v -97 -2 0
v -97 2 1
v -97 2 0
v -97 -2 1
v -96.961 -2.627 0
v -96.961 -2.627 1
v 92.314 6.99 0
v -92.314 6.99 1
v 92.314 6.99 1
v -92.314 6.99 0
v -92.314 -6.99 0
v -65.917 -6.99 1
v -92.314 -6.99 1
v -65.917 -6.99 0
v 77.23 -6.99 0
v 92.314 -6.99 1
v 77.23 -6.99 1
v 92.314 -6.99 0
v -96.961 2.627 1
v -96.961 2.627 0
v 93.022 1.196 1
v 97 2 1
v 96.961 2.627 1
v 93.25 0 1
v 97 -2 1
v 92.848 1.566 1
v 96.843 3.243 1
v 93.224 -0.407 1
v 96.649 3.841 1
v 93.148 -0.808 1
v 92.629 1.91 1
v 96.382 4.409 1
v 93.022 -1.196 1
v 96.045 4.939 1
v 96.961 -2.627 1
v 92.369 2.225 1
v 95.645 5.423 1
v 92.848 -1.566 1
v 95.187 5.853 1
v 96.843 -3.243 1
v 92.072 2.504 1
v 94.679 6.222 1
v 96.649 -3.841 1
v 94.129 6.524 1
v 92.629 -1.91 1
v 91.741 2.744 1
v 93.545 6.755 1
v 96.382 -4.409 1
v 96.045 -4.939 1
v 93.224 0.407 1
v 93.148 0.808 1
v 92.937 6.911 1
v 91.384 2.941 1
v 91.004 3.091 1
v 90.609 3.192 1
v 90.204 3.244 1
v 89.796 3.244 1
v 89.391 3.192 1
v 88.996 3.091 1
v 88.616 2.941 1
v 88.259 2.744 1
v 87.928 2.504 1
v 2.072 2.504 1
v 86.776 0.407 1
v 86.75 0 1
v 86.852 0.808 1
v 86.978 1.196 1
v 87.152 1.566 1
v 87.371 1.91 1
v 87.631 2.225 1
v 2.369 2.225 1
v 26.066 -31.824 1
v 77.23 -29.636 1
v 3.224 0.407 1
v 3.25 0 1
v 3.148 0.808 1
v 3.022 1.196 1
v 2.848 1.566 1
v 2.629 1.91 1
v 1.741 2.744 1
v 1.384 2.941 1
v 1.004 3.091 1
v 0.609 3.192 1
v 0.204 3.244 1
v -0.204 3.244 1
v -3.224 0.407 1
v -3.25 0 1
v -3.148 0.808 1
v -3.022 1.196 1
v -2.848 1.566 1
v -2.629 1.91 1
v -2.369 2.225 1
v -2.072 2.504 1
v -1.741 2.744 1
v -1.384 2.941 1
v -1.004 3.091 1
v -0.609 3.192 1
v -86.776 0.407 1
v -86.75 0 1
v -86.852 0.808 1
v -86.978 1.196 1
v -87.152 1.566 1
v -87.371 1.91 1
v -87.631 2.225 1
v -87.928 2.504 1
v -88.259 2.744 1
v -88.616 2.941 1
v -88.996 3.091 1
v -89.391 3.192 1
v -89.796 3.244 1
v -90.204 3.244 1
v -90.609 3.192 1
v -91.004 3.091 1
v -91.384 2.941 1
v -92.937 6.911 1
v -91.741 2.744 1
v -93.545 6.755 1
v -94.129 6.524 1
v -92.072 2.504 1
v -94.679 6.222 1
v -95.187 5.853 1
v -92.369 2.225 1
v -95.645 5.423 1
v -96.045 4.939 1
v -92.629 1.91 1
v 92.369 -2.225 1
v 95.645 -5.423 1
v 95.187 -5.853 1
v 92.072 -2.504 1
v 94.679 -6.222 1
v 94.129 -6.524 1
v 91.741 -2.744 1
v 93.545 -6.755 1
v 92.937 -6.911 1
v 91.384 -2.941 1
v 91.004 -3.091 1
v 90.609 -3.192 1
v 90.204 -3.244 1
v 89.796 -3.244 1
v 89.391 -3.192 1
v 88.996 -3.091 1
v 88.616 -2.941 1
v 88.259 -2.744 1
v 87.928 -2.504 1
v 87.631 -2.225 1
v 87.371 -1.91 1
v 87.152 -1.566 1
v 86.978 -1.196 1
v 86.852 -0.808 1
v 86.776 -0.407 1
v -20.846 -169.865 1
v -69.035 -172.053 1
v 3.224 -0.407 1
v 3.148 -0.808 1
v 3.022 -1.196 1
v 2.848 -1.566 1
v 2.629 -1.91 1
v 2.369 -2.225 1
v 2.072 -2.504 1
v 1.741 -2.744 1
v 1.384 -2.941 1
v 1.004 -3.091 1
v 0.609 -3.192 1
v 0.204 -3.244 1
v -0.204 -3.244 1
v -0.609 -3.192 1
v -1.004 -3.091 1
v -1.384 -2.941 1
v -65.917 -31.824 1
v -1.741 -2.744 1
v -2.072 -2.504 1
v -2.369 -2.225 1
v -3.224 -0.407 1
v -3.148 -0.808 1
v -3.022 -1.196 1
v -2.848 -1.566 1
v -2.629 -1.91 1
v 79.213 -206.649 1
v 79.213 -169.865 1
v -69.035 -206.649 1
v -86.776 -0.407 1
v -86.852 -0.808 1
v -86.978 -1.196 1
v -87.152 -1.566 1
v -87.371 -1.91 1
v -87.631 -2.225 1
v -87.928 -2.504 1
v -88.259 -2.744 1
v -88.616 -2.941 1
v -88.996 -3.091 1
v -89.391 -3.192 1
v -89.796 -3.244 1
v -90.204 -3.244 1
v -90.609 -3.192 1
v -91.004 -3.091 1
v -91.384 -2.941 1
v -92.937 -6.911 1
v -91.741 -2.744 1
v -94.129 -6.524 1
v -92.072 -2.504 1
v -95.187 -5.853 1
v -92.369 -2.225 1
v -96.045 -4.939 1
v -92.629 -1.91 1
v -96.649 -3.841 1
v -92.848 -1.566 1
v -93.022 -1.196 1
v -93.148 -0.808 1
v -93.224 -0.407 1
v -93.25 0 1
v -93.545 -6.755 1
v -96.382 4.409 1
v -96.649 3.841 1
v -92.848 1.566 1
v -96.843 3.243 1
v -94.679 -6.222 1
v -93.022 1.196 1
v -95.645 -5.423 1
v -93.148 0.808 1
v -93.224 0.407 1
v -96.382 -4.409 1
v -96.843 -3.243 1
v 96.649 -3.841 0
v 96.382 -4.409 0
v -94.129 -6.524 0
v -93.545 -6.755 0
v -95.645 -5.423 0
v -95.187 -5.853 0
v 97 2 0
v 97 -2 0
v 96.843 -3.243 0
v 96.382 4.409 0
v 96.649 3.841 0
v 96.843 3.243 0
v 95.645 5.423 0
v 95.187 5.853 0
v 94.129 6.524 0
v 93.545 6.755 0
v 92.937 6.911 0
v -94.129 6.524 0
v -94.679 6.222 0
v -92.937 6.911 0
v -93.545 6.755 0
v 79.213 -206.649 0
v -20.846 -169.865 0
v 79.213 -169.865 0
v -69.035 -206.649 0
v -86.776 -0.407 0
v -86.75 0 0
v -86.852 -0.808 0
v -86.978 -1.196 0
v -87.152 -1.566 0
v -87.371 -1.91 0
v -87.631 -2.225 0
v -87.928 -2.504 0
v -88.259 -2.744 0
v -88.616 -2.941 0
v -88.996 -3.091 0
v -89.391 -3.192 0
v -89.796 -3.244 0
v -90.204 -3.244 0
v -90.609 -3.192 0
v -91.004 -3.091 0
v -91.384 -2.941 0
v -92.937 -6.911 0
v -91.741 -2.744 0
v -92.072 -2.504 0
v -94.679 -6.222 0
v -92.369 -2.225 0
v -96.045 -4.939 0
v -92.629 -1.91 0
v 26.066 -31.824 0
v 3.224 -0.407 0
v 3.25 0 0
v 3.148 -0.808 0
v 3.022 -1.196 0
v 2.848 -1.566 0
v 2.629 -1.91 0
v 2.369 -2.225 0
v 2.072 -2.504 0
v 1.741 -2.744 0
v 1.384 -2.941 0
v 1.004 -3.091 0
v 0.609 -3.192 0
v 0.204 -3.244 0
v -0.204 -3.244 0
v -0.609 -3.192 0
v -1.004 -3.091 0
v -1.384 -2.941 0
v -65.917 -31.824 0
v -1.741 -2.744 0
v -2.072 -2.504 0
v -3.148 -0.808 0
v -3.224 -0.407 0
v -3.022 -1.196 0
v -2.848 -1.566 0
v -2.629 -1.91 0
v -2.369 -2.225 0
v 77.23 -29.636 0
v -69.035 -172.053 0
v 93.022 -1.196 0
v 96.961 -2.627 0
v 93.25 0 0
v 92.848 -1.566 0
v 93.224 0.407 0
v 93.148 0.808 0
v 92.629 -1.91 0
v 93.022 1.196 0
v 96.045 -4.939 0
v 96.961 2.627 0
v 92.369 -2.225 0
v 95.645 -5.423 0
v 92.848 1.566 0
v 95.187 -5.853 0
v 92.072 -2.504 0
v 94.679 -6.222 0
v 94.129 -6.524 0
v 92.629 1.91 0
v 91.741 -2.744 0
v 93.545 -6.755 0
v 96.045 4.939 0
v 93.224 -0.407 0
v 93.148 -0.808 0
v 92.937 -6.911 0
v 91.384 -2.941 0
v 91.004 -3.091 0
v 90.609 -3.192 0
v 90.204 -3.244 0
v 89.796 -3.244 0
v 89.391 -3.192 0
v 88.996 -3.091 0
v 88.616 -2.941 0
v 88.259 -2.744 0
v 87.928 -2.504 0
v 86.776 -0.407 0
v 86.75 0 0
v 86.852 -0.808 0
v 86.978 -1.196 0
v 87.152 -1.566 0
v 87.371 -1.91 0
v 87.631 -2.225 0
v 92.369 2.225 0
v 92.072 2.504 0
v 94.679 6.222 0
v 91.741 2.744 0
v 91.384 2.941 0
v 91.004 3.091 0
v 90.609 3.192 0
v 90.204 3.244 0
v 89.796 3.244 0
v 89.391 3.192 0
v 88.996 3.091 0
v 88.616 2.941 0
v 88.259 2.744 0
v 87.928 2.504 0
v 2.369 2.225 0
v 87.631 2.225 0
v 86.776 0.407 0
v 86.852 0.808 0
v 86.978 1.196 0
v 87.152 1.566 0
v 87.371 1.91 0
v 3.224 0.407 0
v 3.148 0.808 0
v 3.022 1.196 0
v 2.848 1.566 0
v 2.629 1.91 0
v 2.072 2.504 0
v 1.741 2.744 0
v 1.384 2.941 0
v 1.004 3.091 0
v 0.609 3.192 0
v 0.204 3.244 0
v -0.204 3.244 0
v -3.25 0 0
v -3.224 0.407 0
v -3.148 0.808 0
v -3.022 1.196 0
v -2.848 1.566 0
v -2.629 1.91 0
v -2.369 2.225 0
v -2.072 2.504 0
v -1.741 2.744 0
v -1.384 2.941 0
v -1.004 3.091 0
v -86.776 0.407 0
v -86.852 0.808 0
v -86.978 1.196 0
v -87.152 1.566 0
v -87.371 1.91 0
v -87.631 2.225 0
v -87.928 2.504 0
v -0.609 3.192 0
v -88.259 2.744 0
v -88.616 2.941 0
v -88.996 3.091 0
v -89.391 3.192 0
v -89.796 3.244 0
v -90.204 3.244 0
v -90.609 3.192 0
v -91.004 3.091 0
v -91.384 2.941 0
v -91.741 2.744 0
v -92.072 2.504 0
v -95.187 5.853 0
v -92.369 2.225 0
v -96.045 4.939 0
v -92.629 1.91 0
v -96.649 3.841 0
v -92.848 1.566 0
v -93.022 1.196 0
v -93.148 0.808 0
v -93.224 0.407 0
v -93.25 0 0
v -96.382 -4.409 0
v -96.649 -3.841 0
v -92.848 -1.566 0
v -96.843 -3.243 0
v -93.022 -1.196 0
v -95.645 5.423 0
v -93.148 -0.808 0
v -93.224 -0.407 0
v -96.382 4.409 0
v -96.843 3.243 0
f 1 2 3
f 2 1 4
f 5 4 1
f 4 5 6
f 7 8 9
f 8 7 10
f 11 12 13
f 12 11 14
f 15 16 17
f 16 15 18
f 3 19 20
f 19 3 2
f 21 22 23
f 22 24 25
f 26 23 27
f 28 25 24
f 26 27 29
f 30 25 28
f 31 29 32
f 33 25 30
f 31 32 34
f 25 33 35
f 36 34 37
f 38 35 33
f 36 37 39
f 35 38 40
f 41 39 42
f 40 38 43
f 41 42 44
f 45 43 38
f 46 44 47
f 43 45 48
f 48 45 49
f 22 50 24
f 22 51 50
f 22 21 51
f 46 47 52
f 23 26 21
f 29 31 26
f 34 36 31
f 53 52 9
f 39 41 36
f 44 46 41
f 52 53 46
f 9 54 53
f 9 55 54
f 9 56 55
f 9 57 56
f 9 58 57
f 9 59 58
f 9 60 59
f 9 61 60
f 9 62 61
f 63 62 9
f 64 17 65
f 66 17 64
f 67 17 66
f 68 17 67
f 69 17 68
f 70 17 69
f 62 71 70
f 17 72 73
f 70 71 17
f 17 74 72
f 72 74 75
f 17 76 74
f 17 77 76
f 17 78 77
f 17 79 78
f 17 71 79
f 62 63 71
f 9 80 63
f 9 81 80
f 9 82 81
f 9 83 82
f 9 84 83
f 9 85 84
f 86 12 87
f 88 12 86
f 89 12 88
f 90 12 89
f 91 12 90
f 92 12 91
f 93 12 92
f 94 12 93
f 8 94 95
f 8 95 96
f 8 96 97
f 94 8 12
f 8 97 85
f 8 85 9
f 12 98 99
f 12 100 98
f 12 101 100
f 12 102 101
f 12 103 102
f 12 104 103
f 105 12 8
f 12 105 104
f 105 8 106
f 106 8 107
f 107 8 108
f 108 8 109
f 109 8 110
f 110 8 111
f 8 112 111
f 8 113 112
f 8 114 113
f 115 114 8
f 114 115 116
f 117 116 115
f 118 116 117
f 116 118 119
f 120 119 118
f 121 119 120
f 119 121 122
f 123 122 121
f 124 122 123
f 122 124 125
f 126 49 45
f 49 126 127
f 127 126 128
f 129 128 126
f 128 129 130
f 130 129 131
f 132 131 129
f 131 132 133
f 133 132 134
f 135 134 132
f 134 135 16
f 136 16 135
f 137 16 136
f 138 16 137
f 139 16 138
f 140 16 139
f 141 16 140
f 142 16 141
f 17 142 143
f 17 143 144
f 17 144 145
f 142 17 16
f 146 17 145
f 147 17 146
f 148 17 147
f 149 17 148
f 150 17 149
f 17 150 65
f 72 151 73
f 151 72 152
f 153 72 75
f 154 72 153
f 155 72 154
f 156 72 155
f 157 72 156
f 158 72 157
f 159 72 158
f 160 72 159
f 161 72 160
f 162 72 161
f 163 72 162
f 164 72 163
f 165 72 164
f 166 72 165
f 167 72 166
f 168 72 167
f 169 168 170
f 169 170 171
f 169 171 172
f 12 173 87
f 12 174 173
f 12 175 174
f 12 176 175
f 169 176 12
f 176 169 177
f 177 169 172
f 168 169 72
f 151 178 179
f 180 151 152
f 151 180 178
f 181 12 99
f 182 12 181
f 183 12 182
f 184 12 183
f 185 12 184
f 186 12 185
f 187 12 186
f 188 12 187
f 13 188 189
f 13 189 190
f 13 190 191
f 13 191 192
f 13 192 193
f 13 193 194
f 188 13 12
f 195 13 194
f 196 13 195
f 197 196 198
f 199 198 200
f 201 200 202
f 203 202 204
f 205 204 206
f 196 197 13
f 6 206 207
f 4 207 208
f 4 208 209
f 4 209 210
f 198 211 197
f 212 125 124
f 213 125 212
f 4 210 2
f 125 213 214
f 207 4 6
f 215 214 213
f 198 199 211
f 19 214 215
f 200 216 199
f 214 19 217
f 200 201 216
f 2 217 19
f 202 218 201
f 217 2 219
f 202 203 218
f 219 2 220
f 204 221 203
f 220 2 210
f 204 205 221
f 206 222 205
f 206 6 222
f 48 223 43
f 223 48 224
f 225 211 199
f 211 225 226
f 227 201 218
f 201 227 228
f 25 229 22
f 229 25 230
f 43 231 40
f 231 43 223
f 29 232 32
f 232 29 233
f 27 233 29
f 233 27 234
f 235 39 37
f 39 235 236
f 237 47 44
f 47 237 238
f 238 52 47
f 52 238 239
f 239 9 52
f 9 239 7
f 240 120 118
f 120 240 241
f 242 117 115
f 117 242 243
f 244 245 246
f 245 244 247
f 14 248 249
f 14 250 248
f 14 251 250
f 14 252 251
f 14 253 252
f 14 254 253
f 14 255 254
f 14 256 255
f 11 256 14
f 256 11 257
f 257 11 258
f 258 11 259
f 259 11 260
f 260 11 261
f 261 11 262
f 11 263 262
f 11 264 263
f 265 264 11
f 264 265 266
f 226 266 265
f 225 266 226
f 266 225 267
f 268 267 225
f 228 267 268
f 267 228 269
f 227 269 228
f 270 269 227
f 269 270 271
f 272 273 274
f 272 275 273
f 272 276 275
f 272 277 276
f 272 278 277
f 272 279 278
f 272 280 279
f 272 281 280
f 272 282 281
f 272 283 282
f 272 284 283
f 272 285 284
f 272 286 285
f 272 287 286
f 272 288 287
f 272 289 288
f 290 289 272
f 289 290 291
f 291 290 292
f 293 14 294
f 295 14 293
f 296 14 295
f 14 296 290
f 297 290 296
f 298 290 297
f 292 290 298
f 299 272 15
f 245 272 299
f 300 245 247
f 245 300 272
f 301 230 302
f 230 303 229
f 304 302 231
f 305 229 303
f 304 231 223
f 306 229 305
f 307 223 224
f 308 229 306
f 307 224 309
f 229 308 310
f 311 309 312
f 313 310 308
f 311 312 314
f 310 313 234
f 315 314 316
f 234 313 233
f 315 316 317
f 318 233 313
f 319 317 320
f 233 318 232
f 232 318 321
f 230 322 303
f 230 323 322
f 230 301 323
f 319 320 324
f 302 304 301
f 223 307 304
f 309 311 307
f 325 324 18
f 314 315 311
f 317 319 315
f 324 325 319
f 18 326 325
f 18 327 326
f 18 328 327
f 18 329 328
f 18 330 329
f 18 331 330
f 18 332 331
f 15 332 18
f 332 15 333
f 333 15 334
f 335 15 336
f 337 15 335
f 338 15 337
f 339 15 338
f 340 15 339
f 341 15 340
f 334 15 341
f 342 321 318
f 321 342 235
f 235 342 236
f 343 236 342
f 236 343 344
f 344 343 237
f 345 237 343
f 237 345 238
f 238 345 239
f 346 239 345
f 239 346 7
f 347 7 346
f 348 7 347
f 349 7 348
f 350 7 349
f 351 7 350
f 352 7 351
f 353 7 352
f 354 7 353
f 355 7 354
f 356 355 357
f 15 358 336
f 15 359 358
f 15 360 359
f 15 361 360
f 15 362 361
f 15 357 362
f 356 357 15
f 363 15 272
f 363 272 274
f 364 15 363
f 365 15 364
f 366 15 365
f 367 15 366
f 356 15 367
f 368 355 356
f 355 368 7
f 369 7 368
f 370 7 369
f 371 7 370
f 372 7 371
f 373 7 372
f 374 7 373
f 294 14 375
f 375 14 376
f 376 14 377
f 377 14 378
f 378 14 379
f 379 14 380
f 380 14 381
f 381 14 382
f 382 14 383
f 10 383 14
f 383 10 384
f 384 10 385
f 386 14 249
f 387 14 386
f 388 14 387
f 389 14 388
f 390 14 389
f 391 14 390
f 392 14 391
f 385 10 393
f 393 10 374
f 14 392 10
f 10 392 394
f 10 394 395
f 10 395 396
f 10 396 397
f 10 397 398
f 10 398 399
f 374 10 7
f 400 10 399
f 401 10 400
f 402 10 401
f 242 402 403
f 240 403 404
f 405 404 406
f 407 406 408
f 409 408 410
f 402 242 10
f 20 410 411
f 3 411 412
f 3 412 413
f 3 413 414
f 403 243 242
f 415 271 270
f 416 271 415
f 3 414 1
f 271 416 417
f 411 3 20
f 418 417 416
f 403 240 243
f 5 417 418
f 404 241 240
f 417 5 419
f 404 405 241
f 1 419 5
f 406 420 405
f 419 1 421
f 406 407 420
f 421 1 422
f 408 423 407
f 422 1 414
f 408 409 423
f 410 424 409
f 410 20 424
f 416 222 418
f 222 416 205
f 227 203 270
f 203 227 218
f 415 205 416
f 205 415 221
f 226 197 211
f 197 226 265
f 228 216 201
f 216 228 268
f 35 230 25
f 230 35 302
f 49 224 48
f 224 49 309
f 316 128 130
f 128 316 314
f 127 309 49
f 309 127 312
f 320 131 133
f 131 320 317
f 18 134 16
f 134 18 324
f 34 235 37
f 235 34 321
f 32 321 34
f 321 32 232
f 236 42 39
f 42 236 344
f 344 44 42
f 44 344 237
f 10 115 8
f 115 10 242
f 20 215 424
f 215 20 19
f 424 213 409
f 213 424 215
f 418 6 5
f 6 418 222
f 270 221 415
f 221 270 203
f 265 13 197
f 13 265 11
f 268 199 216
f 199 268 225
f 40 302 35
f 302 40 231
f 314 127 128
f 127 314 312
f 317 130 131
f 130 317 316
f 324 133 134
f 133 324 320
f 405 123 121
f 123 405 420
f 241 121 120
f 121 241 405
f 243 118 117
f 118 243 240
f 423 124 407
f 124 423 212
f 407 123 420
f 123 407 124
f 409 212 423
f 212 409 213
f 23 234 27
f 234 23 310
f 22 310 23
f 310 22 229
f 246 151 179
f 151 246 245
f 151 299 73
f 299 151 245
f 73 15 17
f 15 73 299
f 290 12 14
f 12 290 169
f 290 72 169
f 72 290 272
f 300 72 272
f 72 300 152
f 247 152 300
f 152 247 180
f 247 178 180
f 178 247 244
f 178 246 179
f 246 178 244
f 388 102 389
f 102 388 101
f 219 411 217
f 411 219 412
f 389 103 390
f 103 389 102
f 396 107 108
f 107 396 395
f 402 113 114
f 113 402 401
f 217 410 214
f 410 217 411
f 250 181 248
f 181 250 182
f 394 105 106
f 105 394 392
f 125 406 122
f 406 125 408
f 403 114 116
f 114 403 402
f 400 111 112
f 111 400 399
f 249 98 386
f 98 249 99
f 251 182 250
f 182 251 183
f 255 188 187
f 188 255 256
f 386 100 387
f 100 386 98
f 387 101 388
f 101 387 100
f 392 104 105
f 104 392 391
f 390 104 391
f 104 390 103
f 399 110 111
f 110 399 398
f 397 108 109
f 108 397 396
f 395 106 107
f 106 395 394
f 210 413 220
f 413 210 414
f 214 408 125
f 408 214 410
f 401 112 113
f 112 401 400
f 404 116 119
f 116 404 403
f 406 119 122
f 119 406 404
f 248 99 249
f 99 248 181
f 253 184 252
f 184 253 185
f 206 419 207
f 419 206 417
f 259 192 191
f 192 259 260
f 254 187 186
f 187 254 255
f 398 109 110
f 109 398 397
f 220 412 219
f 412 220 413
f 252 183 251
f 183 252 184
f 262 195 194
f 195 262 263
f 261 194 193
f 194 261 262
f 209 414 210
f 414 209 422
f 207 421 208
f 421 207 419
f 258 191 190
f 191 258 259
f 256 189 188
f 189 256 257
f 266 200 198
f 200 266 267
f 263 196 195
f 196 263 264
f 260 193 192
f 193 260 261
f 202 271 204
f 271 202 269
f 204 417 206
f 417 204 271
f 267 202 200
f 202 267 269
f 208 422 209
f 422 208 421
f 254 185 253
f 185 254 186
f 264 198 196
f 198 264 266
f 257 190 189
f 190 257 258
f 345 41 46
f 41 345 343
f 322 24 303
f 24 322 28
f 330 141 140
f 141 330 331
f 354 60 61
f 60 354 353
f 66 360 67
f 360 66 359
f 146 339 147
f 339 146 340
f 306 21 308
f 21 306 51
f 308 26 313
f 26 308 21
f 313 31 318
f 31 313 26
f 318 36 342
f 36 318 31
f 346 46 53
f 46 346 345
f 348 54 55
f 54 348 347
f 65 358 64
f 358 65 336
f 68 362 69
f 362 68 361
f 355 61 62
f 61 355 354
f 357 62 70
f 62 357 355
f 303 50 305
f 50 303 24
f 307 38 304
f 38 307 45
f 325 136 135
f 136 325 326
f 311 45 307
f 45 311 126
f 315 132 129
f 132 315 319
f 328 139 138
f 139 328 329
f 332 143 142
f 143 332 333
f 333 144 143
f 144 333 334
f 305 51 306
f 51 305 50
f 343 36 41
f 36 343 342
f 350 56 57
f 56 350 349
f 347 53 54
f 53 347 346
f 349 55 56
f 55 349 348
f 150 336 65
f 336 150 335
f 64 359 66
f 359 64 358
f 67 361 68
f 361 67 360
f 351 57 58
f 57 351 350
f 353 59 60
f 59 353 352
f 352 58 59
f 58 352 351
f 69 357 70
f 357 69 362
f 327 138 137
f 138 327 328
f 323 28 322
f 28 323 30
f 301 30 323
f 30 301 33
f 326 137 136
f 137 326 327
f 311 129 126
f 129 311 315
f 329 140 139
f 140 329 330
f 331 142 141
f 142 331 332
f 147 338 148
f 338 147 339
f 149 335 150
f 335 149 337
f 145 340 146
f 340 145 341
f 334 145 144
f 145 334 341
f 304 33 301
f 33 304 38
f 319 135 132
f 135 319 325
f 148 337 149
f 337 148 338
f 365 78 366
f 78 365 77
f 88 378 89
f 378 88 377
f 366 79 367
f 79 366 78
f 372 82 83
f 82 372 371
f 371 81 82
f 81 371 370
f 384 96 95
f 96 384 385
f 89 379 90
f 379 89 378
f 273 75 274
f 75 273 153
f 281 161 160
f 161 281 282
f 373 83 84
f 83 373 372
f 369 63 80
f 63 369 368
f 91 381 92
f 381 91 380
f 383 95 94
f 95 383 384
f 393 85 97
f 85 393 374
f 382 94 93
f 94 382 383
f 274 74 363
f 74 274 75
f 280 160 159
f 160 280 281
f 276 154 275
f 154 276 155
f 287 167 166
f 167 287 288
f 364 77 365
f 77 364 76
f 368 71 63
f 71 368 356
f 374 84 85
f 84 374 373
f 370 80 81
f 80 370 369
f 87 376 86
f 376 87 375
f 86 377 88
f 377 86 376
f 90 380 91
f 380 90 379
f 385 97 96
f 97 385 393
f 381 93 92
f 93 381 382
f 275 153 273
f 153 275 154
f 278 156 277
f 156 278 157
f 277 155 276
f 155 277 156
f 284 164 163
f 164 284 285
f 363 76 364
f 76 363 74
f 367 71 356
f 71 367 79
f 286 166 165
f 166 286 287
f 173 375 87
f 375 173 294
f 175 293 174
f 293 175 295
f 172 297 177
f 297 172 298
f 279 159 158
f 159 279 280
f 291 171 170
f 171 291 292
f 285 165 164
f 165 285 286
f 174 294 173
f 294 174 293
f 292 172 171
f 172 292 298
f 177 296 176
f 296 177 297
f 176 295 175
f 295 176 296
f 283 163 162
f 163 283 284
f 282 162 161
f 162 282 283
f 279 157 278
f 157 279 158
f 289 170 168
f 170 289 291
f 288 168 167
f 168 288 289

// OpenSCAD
$fn = 50;


difference() {
	union() {
		translate(v = [0, 0, 0]) {
			rotate(a = [0, 0, 0]) {
				hull() {
					translate(v = [-92.0000000000, 2.0000000000, 0]) {
						rotate(a = [0, 0, 0]) {
							translate(v = [0, 0, 0]) {
								rotate(a = [0, 0, 0]) {
									cylinder(h = 1, r = 5);
								}
							}
						}
					}
					translate(v = [92.0000000000, 2.0000000000, 0]) {
						rotate(a = [0, 0, 0]) {
							translate(v = [0, 0, 0]) {
								rotate(a = [0, 0, 0]) {
									cylinder(h = 1, r = 5);
								}
							}
						}
					}
					translate(v = [-92.0000000000, -2.0000000000, 0]) {
						rotate(a = [0, 0, 0]) {
							translate(v = [0, 0, 0]) {
								rotate(a = [0, 0, 0]) {
									cylinder(h = 1, r = 5);
								}
							}
						}
					}
					translate(v = [92.0000000000, -2.0000000000, 0]) {
						rotate(a = [0, 0, 0]) {
							translate(v = [0, 0, 0]) {
								rotate(a = [0, 0, 0]) {
									cylinder(h = 1, r = 5);
								}
							}
						}
					}
				}
			}
		}
		translate(v = [0, 0, 0]) {
			rotate(a = [0, 0, 0]) {
				linear_extrude(height = 1) {
					text(font = "DejaVu Sans Mono:style=Bold", halign = "center", size = 209.0000000000, text = "Z", valign = "top");
				}
			}
		}
	}
	union() {
		translate(v = [-90.0000000000, 0.0000000000, -125.0000000000]) {
			rotate(a = [0, 0, 0]) {
				cylinder(h = 250, r = 3.2500000000);
			}
		}
		translate(v = [90.0000000000, 0.0000000000, -125.0000000000]) {
			rotate(a = [0, 0, 0]) {
				cylinder(h = 250, r = 3.2500000000);
			}
		}
		translate(v = [90.0000000000, 0.0000000000, -125.0000000000]) {
			rotate(a = [0, 0, 0]) {
				cylinder(h = 250, r = 3.2500000000);
			}
		}
		translate(v = [0, 0, -125.0000000000]) {
			rotate(a = [0, 0, 0]) {
				cylinder(h = 250, r = 3.2500000000);
			}
		}
	}
}
